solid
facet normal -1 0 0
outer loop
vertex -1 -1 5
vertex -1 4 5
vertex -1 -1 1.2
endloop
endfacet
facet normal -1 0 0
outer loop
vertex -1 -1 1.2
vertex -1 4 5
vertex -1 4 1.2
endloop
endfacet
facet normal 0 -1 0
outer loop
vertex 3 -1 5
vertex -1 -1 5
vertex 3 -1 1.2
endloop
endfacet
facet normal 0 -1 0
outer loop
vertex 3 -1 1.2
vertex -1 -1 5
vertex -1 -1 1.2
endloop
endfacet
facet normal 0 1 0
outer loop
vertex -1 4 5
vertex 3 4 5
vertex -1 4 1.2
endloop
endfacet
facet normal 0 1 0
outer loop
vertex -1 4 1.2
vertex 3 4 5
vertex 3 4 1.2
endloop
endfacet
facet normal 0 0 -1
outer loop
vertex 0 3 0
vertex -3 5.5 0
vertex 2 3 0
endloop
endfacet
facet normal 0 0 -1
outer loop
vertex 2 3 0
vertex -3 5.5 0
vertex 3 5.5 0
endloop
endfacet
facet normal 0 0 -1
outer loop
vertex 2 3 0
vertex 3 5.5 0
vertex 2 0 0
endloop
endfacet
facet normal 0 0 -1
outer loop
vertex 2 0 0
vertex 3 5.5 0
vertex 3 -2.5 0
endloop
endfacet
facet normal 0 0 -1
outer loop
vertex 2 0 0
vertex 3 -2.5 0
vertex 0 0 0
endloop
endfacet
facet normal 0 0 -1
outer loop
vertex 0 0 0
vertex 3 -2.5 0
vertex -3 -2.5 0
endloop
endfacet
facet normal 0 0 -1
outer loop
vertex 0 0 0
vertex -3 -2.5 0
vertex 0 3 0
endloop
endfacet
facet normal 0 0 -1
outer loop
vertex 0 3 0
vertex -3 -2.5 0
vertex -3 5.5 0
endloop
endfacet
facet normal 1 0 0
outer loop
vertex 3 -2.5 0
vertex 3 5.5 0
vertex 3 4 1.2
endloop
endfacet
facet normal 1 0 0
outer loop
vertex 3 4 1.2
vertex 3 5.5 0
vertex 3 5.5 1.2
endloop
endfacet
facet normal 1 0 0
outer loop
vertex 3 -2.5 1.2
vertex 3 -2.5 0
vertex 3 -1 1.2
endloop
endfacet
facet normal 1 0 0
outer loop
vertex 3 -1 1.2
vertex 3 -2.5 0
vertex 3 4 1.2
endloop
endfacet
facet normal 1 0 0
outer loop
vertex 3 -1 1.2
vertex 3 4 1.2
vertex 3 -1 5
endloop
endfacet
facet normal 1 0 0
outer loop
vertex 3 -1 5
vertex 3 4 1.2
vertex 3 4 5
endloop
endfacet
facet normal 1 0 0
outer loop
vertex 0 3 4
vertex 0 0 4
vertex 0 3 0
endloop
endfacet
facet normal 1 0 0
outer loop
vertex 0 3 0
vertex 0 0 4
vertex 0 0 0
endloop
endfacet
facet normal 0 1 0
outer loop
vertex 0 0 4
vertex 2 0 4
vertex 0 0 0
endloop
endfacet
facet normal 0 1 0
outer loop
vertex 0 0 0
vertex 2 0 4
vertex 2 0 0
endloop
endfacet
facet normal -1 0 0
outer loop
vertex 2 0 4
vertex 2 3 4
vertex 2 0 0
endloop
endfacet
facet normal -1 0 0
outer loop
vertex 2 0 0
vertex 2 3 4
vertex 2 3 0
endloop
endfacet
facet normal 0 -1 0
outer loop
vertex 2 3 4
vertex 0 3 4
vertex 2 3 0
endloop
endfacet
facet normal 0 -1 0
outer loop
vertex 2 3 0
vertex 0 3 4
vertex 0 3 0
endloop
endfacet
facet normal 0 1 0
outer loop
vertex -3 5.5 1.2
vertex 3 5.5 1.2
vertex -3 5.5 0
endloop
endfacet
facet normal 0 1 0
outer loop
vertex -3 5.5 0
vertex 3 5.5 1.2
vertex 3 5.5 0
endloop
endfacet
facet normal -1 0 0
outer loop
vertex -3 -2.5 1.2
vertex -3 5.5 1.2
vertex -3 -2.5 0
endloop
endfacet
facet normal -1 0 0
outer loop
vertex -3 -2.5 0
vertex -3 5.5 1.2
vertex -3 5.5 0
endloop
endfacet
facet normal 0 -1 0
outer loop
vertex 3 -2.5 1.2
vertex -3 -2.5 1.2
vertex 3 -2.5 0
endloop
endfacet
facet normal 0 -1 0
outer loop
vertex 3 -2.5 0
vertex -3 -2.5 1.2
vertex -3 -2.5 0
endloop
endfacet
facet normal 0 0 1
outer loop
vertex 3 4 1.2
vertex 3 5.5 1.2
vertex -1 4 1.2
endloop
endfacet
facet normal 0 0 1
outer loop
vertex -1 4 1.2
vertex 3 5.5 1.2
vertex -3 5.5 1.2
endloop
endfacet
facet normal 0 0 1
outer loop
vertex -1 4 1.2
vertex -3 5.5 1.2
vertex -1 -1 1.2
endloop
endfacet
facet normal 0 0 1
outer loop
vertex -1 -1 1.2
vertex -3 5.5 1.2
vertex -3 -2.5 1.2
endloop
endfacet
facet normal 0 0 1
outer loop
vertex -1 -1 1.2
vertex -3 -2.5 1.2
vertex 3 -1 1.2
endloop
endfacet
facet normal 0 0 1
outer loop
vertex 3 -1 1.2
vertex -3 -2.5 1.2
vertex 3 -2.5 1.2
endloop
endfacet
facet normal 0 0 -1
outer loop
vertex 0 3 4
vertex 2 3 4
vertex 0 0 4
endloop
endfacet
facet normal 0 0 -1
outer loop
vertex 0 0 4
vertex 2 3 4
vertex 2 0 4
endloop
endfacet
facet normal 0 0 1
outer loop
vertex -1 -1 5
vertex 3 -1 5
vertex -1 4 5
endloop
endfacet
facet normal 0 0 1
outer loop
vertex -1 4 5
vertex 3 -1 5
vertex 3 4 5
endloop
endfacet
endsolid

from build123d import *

# Parameters (mm, degrees)
SKETCH_1_W      = 4
SKETCH_1_H      = 5
SKETCH_1_W_2    = 2
SKETCH_1_H_2    = 3
EXTRUDE_1_DEPTH = 4
EXTRUDE_2_DEPTH = 1.2
SKETCH_3_W      = 4
SKETCH_3_H      = 5
EXTRUDE_3_DEPTH = 1


with BuildPart() as part:
    # 草图1 → 凸台-拉伸1 (new body)
    with BuildSketch(Plane.XY):
        with Locations((1, 1.5)):
            Rectangle(SKETCH_1_W, SKETCH_1_H)
        with Locations((1, 1.5)):
            Rectangle(SKETCH_1_W_2, SKETCH_1_H_2, mode=Mode.SUBTRACT)
    extrude(amount=EXTRUDE_1_DEPTH)

    # 草图2 → 凸台-拉伸2 (add)
    with BuildSketch(Plane(origin=(0, 0, 0), x_dir=(-1, 0, 0), z_dir=(0, 0, -1))):
        Polygon((-3, 4), (1, 4), (1, -1), (-3, -1), (-3, -2.5), (3, -2.5), (3, 5.5), (-3, 5.5), align=None)
    extrude(amount=-EXTRUDE_2_DEPTH)

    # 草图3 → 凸台-拉伸3 (add)
    with BuildSketch(Plane.XY.offset(4)):
        with Locations((1, 1.5)):
            Rectangle(SKETCH_3_W, SKETCH_3_H)
    extrude(amount=EXTRUDE_3_DEPTH)


solid = part.part
